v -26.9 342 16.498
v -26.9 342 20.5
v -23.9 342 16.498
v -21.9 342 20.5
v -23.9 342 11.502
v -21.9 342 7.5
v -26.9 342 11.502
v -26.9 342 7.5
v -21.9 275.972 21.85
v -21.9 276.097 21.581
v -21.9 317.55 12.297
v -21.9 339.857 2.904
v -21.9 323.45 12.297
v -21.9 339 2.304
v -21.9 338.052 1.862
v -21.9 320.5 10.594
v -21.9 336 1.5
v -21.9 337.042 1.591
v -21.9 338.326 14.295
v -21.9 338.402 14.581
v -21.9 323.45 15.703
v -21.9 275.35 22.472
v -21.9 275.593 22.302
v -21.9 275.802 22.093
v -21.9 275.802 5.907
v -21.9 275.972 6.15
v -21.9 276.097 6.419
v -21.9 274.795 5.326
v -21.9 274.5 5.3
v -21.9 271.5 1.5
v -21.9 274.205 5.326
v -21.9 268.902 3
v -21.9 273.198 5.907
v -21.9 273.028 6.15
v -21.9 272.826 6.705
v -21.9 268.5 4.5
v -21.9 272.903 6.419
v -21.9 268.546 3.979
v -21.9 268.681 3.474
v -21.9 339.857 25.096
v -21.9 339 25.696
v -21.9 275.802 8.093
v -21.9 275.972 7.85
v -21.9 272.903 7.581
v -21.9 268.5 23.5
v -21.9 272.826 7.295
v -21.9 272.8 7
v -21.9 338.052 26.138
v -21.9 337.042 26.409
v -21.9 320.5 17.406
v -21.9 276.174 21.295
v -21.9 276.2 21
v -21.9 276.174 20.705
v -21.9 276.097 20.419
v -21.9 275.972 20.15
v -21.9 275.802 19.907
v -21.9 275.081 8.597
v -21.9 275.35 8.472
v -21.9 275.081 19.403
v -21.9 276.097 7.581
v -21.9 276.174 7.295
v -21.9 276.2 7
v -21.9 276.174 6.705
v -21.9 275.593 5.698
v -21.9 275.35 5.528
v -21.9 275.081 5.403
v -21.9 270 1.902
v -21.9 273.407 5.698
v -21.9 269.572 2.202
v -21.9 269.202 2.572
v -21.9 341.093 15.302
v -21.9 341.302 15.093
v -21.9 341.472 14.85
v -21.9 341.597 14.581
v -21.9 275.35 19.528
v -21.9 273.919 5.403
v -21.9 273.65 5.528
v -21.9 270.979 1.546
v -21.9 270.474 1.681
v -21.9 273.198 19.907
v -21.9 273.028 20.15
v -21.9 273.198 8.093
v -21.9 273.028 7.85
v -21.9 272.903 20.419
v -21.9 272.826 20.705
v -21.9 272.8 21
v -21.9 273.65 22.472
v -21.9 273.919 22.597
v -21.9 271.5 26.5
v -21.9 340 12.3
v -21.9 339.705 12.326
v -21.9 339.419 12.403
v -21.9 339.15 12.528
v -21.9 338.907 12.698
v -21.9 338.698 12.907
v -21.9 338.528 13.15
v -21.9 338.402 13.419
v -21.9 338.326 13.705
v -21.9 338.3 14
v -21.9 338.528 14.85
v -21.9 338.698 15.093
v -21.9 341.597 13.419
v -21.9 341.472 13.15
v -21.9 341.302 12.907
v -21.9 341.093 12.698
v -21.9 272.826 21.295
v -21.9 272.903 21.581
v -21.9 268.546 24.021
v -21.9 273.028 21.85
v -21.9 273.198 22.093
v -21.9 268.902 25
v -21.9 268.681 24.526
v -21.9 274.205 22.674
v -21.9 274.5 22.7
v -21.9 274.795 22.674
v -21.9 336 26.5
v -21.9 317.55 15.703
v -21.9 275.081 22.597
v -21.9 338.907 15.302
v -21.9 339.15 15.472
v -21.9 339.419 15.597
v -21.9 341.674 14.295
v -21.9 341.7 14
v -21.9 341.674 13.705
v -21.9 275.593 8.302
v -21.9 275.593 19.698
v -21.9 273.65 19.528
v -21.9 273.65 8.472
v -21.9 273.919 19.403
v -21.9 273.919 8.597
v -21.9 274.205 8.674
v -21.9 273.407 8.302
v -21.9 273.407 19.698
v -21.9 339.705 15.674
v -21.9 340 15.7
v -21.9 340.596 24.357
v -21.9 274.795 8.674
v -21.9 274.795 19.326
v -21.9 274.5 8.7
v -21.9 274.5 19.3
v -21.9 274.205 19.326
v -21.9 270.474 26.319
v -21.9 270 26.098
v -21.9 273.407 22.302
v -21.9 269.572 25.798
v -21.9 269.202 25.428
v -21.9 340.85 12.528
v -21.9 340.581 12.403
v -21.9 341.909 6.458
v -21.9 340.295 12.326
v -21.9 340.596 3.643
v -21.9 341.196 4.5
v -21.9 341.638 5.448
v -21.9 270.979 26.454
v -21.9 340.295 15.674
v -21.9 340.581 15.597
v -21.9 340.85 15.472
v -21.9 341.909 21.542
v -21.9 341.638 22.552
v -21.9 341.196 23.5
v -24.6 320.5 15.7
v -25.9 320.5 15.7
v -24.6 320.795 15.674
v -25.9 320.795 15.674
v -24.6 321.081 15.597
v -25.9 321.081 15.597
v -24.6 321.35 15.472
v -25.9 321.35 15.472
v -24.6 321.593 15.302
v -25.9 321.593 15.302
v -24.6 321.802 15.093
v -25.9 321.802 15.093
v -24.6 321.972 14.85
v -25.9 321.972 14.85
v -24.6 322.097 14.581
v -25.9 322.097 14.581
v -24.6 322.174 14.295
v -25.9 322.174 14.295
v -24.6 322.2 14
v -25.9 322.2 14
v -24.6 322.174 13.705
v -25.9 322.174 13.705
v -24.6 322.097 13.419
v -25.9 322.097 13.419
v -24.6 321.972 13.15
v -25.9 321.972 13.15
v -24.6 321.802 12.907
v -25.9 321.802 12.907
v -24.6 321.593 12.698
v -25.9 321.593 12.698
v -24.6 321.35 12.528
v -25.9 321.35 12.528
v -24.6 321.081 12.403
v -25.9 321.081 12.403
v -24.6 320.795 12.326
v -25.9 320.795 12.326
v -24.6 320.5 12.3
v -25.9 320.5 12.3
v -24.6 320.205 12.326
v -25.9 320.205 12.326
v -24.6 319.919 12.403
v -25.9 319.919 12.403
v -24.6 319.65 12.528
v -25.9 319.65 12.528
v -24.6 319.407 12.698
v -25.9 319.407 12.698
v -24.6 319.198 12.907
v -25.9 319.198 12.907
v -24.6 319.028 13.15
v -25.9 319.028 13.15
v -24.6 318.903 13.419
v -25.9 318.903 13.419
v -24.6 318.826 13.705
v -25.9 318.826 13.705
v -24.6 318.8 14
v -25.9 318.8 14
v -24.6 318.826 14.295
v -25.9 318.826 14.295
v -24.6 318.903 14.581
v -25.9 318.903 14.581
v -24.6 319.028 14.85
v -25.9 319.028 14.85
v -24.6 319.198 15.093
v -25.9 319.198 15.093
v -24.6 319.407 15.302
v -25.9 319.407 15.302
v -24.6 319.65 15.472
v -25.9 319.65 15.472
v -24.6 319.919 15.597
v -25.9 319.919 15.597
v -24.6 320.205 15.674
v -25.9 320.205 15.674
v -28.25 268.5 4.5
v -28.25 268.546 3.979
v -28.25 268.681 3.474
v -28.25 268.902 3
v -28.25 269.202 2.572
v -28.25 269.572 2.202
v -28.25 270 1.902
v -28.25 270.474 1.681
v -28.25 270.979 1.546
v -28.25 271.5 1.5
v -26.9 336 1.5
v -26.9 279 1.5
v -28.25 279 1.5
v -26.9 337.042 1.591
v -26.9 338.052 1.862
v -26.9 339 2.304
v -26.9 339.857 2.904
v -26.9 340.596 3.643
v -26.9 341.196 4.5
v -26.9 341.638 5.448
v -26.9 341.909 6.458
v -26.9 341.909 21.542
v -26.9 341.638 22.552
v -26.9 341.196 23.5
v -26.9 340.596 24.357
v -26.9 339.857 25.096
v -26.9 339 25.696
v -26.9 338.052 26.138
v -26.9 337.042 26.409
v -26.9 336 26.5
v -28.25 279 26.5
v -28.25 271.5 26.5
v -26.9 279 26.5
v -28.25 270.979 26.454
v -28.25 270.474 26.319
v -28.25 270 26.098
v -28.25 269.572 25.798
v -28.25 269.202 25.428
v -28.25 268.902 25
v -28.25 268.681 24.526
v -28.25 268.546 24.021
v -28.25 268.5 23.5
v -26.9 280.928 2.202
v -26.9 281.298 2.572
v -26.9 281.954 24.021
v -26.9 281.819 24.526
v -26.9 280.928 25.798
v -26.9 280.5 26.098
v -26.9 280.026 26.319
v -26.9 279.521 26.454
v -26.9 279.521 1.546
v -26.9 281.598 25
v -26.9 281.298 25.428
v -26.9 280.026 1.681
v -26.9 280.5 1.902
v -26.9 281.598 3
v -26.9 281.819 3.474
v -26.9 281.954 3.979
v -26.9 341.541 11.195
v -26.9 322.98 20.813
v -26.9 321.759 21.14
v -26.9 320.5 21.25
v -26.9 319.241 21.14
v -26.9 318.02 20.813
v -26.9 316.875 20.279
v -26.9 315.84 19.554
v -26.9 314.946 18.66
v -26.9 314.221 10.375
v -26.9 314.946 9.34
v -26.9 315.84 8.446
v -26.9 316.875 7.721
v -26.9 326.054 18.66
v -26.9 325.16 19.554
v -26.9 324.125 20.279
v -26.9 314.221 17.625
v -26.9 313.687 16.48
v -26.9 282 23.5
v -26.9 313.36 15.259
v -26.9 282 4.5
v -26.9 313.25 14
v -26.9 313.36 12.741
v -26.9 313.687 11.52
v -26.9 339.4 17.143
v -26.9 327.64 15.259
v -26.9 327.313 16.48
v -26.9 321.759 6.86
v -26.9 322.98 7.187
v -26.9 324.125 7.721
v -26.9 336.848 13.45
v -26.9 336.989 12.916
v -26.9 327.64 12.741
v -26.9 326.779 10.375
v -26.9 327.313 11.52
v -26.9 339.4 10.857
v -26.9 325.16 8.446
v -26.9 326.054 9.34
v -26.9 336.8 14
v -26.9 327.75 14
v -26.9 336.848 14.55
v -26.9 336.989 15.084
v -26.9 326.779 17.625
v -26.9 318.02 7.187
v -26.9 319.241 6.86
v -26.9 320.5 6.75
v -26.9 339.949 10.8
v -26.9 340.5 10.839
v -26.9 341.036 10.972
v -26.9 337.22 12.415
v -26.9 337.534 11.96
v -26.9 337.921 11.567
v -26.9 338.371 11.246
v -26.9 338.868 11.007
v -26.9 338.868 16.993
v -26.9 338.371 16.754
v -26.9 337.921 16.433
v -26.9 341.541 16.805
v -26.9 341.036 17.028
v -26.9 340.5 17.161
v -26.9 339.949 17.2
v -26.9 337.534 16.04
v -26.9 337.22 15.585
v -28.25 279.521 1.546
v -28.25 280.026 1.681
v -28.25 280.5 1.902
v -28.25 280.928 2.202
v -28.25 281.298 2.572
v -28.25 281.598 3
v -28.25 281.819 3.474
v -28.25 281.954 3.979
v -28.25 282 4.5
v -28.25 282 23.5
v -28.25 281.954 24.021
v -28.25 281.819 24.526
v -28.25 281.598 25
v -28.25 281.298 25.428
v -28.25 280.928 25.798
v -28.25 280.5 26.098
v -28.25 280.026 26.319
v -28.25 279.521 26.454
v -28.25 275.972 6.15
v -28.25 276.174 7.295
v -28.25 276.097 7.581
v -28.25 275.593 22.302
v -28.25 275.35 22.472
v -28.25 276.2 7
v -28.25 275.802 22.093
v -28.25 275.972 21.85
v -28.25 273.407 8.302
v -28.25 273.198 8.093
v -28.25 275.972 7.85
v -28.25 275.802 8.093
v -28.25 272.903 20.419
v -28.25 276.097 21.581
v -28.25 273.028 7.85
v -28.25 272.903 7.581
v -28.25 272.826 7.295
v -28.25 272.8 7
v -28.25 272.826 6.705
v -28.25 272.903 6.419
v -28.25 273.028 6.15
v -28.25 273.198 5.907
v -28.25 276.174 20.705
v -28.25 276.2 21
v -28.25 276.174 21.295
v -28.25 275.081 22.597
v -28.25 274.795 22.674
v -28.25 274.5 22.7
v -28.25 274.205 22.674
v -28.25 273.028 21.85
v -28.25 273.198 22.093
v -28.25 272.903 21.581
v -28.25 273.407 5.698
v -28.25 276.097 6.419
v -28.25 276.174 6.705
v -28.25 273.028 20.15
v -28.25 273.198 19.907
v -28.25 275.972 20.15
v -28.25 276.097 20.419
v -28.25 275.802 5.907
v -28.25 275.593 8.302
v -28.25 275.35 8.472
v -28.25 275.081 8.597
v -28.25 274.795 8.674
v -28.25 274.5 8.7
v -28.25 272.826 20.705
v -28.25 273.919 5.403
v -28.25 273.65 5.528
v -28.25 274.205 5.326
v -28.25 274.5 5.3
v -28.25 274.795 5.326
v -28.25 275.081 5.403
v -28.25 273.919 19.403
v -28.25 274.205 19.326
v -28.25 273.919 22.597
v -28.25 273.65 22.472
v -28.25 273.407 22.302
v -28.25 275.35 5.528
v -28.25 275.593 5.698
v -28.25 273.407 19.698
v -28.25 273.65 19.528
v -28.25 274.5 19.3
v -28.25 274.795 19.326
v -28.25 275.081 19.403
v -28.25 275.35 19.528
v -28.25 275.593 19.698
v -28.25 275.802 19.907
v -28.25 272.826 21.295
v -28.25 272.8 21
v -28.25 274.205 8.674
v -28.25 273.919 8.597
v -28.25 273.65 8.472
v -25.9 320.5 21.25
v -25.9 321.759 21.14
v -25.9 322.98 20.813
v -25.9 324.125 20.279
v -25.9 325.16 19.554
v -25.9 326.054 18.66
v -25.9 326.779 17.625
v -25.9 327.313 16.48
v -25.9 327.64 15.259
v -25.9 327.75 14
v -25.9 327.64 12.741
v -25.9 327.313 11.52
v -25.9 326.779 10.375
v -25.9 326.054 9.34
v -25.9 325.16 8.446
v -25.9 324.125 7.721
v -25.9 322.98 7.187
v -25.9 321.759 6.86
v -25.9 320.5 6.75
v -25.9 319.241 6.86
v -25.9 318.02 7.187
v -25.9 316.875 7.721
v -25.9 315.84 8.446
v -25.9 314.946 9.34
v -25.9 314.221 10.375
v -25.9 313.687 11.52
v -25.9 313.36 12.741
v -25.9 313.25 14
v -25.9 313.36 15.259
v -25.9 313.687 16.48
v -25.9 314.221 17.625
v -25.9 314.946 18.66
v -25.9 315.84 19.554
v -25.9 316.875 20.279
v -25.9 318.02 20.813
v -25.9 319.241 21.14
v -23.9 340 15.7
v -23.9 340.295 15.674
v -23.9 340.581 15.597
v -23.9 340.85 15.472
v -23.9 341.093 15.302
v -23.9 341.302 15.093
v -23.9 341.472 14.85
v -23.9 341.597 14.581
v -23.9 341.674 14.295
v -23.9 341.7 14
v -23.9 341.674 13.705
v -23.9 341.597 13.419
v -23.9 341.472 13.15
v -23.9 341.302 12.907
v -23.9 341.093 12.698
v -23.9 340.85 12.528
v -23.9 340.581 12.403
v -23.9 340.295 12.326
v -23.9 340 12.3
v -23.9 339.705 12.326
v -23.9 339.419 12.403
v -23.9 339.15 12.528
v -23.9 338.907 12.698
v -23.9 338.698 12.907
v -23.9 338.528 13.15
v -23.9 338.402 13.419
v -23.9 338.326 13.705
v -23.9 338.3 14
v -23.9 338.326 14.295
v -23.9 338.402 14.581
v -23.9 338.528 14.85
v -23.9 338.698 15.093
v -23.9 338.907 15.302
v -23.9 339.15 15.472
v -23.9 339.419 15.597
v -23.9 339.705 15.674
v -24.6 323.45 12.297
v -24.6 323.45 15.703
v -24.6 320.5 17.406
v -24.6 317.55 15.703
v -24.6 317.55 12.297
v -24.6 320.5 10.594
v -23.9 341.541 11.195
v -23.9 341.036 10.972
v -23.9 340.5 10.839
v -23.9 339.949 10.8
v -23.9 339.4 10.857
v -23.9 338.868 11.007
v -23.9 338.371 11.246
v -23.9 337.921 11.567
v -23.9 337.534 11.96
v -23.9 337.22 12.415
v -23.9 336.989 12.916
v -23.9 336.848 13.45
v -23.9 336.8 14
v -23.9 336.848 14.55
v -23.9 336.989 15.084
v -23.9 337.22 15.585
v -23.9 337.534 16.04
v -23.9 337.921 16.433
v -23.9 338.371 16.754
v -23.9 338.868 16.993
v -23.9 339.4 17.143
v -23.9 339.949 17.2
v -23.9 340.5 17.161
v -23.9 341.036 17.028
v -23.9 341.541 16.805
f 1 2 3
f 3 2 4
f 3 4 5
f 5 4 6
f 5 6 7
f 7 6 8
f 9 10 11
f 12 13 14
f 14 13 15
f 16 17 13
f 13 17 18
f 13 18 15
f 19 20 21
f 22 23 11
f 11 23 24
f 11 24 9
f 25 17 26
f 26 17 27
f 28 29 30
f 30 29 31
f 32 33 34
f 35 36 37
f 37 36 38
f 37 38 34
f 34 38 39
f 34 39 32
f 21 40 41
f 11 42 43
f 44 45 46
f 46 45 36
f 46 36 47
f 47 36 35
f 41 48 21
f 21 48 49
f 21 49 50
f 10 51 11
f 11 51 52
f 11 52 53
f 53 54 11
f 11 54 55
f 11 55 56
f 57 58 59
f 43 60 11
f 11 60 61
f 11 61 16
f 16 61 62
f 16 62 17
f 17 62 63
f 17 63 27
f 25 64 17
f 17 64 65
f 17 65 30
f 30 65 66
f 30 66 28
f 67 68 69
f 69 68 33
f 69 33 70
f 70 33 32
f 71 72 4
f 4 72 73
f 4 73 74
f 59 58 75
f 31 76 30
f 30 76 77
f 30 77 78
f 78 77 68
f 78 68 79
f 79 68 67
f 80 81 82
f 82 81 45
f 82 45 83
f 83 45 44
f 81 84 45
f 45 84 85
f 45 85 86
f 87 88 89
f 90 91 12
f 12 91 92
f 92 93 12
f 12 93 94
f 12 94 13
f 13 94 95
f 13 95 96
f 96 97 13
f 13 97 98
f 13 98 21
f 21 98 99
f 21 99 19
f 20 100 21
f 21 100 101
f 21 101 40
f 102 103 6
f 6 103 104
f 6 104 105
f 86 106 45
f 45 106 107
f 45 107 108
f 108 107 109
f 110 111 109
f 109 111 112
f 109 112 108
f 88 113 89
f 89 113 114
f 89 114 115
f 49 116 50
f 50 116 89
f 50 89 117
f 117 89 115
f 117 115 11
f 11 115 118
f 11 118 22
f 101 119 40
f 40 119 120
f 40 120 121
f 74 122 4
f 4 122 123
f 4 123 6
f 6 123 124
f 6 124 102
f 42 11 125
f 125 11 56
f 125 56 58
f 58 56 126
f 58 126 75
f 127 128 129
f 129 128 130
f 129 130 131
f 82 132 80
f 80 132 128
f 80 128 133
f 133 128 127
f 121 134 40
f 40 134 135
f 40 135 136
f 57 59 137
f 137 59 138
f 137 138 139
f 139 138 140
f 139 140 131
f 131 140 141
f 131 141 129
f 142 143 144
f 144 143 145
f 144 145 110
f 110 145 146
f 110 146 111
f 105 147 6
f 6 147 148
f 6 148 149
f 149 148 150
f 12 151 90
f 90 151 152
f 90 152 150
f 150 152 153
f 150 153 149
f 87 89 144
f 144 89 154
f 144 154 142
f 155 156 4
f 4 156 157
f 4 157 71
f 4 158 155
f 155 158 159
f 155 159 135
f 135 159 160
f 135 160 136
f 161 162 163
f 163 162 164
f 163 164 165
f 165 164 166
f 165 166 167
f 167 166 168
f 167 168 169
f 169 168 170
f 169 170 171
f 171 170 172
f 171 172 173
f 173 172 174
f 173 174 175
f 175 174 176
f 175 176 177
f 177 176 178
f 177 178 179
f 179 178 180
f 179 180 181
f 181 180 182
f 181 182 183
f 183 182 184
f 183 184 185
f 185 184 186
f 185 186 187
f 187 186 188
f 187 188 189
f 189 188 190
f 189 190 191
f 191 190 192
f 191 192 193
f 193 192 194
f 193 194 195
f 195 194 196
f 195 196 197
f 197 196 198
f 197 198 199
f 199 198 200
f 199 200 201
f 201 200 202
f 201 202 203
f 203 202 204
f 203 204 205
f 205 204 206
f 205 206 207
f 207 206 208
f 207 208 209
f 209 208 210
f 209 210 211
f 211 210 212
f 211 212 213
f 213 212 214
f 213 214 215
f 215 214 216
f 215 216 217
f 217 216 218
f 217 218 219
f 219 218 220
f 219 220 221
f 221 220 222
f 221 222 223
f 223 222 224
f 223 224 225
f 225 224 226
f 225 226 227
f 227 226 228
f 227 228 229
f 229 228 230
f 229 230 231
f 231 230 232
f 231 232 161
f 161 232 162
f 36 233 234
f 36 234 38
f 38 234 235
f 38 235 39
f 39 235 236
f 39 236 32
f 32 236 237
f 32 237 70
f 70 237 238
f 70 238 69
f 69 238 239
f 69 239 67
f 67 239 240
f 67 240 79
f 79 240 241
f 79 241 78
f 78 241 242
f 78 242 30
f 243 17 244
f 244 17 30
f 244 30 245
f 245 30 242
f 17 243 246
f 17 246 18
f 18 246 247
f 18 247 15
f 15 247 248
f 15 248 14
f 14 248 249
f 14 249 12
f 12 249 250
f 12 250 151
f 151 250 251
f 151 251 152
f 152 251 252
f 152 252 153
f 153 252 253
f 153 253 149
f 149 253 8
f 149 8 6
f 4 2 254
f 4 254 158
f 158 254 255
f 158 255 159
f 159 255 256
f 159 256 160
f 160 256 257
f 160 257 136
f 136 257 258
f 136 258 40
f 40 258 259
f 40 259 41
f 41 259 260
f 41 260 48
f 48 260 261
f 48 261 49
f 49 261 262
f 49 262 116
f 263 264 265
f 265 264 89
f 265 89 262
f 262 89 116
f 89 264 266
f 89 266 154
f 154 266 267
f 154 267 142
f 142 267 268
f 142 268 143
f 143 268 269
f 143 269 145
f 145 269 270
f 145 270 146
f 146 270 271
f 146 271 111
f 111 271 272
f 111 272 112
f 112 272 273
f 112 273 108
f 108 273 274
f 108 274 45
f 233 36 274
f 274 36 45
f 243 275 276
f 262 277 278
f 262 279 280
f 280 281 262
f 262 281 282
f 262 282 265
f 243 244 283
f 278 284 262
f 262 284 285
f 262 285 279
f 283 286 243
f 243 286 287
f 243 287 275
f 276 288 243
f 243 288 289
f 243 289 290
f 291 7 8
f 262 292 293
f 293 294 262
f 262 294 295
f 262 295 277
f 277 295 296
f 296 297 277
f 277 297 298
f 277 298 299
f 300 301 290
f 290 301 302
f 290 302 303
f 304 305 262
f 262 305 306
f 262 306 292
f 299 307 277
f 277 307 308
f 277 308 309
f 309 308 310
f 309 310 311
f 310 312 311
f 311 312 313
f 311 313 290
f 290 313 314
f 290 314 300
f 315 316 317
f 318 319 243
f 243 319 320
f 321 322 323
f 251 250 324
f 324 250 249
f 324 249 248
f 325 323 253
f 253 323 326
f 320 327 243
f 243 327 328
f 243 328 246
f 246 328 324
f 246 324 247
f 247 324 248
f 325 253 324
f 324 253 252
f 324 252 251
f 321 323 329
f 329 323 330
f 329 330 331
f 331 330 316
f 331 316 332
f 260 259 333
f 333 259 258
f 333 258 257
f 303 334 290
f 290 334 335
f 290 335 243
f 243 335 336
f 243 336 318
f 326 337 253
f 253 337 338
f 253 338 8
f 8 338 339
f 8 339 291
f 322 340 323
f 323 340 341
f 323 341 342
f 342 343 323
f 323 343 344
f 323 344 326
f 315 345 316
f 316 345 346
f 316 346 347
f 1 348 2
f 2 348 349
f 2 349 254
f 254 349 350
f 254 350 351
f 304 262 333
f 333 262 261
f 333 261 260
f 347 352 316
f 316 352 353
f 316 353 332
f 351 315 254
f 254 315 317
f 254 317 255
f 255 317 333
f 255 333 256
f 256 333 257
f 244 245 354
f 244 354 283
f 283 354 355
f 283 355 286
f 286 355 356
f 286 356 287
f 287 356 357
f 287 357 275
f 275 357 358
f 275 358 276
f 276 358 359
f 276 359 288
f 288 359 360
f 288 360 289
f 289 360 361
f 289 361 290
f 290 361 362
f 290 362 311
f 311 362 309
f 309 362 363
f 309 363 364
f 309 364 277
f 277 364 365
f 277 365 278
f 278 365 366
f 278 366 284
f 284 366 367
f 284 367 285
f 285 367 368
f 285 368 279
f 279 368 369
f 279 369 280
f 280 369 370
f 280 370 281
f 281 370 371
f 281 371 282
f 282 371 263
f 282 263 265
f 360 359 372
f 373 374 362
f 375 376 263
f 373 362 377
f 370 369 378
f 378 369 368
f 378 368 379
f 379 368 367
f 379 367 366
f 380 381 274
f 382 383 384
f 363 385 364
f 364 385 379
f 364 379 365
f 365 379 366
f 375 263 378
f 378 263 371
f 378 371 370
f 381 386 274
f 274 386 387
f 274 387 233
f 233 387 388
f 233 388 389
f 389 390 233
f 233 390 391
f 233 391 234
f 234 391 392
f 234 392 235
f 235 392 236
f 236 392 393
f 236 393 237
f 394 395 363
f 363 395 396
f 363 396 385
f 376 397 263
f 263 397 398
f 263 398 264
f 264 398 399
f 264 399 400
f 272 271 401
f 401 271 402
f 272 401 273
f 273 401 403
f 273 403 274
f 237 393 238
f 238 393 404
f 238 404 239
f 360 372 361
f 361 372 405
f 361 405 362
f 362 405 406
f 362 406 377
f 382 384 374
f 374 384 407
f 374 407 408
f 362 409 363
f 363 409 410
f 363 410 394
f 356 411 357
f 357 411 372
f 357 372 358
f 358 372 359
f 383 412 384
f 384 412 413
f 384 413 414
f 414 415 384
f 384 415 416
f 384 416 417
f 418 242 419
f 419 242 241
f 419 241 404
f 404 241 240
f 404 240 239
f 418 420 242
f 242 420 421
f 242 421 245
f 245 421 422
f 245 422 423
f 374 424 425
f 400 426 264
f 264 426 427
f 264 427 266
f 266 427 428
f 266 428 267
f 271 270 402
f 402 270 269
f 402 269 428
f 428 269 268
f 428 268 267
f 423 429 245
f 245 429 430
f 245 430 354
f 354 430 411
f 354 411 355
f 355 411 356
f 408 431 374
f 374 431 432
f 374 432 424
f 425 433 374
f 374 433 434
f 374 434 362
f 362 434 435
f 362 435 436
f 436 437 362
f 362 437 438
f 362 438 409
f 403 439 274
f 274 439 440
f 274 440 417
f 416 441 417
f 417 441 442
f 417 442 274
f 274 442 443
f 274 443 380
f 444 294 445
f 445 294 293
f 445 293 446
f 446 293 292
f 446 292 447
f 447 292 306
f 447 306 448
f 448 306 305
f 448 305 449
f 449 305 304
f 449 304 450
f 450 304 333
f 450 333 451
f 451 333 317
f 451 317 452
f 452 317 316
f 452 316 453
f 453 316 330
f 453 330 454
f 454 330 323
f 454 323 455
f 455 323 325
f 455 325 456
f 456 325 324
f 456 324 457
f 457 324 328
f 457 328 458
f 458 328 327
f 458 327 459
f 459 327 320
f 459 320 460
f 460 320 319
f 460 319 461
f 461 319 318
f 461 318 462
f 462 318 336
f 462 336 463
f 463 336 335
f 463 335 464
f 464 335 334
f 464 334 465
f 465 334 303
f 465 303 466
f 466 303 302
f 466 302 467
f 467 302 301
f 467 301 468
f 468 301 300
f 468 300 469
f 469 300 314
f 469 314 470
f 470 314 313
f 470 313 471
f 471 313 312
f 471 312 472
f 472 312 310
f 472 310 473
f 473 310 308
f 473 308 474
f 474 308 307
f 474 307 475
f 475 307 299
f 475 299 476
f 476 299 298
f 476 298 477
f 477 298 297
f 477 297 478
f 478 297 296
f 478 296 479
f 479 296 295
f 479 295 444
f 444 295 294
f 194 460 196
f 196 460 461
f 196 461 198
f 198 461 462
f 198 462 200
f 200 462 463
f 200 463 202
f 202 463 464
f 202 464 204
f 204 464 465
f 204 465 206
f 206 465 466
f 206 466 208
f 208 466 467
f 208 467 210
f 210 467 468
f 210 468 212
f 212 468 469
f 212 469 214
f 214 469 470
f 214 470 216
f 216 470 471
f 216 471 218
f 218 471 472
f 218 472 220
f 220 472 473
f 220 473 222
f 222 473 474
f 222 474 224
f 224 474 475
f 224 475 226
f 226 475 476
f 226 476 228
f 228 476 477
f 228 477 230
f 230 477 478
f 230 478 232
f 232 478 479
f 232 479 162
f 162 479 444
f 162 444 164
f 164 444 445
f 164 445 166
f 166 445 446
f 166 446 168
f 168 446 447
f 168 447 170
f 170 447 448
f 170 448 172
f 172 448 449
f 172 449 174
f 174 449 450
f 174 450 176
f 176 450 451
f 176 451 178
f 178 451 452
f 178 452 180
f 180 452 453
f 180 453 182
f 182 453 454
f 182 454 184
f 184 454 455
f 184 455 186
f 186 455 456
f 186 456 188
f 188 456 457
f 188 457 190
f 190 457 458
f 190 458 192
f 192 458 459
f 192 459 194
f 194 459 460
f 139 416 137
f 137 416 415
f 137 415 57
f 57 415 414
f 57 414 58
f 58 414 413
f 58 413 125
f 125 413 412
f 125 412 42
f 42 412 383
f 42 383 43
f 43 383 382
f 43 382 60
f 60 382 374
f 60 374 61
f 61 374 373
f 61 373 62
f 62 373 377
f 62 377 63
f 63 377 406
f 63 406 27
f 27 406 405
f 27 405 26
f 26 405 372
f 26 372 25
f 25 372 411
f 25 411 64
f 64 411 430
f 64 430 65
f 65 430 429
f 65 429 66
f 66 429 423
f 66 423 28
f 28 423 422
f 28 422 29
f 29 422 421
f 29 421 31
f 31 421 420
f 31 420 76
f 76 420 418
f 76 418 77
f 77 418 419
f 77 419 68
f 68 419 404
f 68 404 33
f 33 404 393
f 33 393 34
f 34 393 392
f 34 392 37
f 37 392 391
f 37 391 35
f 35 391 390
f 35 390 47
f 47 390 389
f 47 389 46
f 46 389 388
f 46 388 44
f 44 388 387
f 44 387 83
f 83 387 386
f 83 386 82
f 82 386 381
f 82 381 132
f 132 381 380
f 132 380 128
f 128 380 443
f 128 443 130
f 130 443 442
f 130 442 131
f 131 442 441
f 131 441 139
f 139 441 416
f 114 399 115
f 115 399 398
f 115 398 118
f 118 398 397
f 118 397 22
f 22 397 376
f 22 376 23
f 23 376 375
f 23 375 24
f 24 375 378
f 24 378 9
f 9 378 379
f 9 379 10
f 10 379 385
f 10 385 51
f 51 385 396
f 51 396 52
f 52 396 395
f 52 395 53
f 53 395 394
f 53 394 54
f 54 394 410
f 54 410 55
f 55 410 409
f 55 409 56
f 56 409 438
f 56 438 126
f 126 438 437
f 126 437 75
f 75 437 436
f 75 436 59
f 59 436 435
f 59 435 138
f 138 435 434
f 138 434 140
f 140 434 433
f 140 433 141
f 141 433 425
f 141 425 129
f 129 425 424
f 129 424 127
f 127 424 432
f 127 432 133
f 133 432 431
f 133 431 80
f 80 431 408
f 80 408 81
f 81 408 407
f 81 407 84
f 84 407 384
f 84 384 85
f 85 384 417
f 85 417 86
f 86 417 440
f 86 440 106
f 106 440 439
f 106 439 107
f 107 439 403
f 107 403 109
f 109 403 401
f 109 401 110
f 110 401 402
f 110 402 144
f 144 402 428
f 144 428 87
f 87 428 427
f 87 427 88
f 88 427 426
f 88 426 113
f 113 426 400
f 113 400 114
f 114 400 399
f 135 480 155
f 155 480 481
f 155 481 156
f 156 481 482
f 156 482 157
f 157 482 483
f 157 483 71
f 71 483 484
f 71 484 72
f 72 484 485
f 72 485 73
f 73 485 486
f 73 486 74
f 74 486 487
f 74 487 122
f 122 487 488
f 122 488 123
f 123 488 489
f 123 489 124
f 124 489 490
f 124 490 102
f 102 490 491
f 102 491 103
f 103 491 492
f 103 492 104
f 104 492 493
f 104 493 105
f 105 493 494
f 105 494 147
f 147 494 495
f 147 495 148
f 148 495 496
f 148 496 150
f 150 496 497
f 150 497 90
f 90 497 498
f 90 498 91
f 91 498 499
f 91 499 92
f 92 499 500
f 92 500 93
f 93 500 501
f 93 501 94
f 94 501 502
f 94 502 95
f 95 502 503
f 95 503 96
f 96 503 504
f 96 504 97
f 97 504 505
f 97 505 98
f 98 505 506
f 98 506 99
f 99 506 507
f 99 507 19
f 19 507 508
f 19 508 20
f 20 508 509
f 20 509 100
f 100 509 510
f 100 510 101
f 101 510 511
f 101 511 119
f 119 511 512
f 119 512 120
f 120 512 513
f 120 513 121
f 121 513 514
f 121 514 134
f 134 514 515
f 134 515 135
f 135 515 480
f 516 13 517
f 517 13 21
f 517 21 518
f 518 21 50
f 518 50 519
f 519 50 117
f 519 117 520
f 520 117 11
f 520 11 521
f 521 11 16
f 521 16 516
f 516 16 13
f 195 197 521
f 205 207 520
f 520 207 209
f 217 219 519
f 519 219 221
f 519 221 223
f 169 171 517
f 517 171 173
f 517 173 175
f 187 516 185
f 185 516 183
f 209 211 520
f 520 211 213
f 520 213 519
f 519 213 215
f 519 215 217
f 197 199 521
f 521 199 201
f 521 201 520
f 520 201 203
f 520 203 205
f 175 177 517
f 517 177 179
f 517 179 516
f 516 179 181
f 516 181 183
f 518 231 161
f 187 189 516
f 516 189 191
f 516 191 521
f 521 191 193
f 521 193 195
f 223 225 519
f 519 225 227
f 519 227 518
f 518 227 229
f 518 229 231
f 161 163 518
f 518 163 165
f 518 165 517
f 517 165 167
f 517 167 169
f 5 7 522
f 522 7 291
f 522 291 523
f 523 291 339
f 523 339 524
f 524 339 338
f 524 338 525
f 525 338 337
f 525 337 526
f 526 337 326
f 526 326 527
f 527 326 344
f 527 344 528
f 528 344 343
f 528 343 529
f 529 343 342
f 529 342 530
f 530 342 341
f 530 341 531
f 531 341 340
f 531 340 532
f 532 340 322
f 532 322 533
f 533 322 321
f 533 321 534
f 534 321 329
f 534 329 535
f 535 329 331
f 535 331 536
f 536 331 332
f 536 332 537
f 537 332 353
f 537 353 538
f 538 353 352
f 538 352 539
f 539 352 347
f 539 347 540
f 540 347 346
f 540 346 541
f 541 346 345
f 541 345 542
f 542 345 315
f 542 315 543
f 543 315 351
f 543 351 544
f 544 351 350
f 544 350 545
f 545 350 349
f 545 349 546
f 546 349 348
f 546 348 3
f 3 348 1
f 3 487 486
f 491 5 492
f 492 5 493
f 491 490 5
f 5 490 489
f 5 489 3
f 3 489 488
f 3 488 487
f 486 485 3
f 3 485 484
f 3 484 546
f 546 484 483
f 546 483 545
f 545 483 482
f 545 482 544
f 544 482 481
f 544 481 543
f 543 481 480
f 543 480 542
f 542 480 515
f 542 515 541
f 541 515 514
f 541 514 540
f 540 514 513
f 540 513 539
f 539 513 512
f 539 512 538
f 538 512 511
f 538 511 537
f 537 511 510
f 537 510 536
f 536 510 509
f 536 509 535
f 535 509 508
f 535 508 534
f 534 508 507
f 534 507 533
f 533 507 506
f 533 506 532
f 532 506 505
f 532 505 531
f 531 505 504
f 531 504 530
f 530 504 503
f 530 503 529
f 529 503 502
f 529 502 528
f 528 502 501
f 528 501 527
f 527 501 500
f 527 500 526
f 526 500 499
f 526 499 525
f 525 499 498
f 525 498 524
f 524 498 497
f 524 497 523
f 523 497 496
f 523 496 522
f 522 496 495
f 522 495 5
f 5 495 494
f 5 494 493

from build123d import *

# Parameters (mm, degrees)
COVER_START       = -26.9
COVER_PLATE_DEPTH = 5
TAIL_START        = -28.25
TAIL_PAD_DEPTH    = 1.55
PIN_START         = -27.1
SKETCH3_R         = 7.25
PIN_SEAT_DEPTH    = 1.2
BOLT_START        = -28.55
SKETCH4_R         = 1.7
BOLT_HOLES_DEPTH  = 6.85
PIN_START_2       = -24.6
PIN_NUT_DEPTH     = 2.9
COUNTERBORE_START = -27.1
SKETCH6_R         = 3.2
COUNTERBORE_DEPTH = 3.2


with BuildPart() as part:
    # Sketch1 → Cover plate (new body)
    with BuildSketch(Plane(origin=(0, 0, 0), x_dir=(0, 0, -1), z_dir=(1, 0, 0)).offset(COVER_START)):
        with BuildLine():
            Line((-1.5, 271.5), (-1.5, 336))
            ThreePointArc((-1.5, 336), (-3.257359313, 340.242640687), (-7.5, 342))
            Line((-7.5, 342), (-20.5, 342))
            ThreePointArc((-20.5, 342), (-24.742640687, 340.242640687), (-26.5, 336))
            Line((-26.5, 336), (-26.5, 271.5))
            ThreePointArc((-26.5, 271.5), (-25.621320344, 269.378679656), (-23.5, 268.5))
            Line((-23.5, 268.5), (-4.5, 268.5))
            ThreePointArc((-4.5, 268.5), (-2.378679656, 269.378679656), (-1.5, 271.5))
        make_face()
    extrude(amount=COVER_PLATE_DEPTH)

    # Sketch2 → Tail pad (add)
    with BuildSketch(Plane(origin=(0, 0, 0), x_dir=(0, 0, -1), z_dir=(1, 0, 0)).offset(TAIL_START)):
        with BuildLine():
            Line((-1.5, 271.5), (-1.5, 279))
            ThreePointArc((-1.5, 279), (-2.378679656, 281.121320344), (-4.5, 282))
            Line((-4.5, 282), (-23.5, 282))
            ThreePointArc((-23.5, 282), (-25.621320344, 281.121320344), (-26.5, 279))
            Line((-26.5, 279), (-26.5, 271.5))
            ThreePointArc((-26.5, 271.5), (-25.621320344, 269.378679656), (-23.5, 268.5))
            Line((-23.5, 268.5), (-4.5, 268.5))
            ThreePointArc((-4.5, 268.5), (-2.378679656, 269.378679656), (-1.5, 271.5))
        make_face()
    extrude(amount=TAIL_PAD_DEPTH)

    # Sketch3 → Pin seat (cut)
    with BuildSketch(Plane(origin=(0, 0, 0), x_dir=(0, 0, -1), z_dir=(1, 0, 0)).offset(PIN_START)):
        with Locations((-14, 320.5)):
            Circle(SKETCH3_R)
    extrude(amount=PIN_SEAT_DEPTH, mode=Mode.SUBTRACT)

    # Sketch4 → Bolt holes (cut)
    with BuildSketch(Plane(origin=(0, 0, 0), x_dir=(0, 0, -1), z_dir=(1, 0, 0)).offset(BOLT_START)):
        with Locations((-14, 320.5)):
            Circle(SKETCH4_R)
        with Locations((-7, 274.5)):
            Circle(SKETCH4_R)
        with Locations((-21, 274.5)):
            Circle(SKETCH4_R)
        with Locations((-14, 340)):
            Circle(SKETCH4_R)
    extrude(amount=BOLT_HOLES_DEPTH, mode=Mode.SUBTRACT)

    # Sketch5 → Pin nut (cut)
    with BuildSketch(Plane(origin=(0, 0, 0), x_dir=(0, 0, -1), z_dir=(1, 0, 0)).offset(PIN_START_2)):
        Polygon((-15.703183294, 323.45), (-17.406366588, 320.5), (-15.703183294, 317.55), (-12.296816706, 317.55), (-10.593633412, 320.5), (-12.296816706, 323.45), align=None)
    extrude(amount=PIN_NUT_DEPTH, mode=Mode.SUBTRACT)

    # Sketch6 → Counterbore (cut)
    with BuildSketch(Plane(origin=(0, 0, 0), x_dir=(0, 0, -1), z_dir=(1, 0, 0)).offset(COUNTERBORE_START)):
        with Locations((-14, 340)):
            Circle(SKETCH6_R)
    extrude(amount=COUNTERBORE_DEPTH, mode=Mode.SUBTRACT)


solid = part.part
